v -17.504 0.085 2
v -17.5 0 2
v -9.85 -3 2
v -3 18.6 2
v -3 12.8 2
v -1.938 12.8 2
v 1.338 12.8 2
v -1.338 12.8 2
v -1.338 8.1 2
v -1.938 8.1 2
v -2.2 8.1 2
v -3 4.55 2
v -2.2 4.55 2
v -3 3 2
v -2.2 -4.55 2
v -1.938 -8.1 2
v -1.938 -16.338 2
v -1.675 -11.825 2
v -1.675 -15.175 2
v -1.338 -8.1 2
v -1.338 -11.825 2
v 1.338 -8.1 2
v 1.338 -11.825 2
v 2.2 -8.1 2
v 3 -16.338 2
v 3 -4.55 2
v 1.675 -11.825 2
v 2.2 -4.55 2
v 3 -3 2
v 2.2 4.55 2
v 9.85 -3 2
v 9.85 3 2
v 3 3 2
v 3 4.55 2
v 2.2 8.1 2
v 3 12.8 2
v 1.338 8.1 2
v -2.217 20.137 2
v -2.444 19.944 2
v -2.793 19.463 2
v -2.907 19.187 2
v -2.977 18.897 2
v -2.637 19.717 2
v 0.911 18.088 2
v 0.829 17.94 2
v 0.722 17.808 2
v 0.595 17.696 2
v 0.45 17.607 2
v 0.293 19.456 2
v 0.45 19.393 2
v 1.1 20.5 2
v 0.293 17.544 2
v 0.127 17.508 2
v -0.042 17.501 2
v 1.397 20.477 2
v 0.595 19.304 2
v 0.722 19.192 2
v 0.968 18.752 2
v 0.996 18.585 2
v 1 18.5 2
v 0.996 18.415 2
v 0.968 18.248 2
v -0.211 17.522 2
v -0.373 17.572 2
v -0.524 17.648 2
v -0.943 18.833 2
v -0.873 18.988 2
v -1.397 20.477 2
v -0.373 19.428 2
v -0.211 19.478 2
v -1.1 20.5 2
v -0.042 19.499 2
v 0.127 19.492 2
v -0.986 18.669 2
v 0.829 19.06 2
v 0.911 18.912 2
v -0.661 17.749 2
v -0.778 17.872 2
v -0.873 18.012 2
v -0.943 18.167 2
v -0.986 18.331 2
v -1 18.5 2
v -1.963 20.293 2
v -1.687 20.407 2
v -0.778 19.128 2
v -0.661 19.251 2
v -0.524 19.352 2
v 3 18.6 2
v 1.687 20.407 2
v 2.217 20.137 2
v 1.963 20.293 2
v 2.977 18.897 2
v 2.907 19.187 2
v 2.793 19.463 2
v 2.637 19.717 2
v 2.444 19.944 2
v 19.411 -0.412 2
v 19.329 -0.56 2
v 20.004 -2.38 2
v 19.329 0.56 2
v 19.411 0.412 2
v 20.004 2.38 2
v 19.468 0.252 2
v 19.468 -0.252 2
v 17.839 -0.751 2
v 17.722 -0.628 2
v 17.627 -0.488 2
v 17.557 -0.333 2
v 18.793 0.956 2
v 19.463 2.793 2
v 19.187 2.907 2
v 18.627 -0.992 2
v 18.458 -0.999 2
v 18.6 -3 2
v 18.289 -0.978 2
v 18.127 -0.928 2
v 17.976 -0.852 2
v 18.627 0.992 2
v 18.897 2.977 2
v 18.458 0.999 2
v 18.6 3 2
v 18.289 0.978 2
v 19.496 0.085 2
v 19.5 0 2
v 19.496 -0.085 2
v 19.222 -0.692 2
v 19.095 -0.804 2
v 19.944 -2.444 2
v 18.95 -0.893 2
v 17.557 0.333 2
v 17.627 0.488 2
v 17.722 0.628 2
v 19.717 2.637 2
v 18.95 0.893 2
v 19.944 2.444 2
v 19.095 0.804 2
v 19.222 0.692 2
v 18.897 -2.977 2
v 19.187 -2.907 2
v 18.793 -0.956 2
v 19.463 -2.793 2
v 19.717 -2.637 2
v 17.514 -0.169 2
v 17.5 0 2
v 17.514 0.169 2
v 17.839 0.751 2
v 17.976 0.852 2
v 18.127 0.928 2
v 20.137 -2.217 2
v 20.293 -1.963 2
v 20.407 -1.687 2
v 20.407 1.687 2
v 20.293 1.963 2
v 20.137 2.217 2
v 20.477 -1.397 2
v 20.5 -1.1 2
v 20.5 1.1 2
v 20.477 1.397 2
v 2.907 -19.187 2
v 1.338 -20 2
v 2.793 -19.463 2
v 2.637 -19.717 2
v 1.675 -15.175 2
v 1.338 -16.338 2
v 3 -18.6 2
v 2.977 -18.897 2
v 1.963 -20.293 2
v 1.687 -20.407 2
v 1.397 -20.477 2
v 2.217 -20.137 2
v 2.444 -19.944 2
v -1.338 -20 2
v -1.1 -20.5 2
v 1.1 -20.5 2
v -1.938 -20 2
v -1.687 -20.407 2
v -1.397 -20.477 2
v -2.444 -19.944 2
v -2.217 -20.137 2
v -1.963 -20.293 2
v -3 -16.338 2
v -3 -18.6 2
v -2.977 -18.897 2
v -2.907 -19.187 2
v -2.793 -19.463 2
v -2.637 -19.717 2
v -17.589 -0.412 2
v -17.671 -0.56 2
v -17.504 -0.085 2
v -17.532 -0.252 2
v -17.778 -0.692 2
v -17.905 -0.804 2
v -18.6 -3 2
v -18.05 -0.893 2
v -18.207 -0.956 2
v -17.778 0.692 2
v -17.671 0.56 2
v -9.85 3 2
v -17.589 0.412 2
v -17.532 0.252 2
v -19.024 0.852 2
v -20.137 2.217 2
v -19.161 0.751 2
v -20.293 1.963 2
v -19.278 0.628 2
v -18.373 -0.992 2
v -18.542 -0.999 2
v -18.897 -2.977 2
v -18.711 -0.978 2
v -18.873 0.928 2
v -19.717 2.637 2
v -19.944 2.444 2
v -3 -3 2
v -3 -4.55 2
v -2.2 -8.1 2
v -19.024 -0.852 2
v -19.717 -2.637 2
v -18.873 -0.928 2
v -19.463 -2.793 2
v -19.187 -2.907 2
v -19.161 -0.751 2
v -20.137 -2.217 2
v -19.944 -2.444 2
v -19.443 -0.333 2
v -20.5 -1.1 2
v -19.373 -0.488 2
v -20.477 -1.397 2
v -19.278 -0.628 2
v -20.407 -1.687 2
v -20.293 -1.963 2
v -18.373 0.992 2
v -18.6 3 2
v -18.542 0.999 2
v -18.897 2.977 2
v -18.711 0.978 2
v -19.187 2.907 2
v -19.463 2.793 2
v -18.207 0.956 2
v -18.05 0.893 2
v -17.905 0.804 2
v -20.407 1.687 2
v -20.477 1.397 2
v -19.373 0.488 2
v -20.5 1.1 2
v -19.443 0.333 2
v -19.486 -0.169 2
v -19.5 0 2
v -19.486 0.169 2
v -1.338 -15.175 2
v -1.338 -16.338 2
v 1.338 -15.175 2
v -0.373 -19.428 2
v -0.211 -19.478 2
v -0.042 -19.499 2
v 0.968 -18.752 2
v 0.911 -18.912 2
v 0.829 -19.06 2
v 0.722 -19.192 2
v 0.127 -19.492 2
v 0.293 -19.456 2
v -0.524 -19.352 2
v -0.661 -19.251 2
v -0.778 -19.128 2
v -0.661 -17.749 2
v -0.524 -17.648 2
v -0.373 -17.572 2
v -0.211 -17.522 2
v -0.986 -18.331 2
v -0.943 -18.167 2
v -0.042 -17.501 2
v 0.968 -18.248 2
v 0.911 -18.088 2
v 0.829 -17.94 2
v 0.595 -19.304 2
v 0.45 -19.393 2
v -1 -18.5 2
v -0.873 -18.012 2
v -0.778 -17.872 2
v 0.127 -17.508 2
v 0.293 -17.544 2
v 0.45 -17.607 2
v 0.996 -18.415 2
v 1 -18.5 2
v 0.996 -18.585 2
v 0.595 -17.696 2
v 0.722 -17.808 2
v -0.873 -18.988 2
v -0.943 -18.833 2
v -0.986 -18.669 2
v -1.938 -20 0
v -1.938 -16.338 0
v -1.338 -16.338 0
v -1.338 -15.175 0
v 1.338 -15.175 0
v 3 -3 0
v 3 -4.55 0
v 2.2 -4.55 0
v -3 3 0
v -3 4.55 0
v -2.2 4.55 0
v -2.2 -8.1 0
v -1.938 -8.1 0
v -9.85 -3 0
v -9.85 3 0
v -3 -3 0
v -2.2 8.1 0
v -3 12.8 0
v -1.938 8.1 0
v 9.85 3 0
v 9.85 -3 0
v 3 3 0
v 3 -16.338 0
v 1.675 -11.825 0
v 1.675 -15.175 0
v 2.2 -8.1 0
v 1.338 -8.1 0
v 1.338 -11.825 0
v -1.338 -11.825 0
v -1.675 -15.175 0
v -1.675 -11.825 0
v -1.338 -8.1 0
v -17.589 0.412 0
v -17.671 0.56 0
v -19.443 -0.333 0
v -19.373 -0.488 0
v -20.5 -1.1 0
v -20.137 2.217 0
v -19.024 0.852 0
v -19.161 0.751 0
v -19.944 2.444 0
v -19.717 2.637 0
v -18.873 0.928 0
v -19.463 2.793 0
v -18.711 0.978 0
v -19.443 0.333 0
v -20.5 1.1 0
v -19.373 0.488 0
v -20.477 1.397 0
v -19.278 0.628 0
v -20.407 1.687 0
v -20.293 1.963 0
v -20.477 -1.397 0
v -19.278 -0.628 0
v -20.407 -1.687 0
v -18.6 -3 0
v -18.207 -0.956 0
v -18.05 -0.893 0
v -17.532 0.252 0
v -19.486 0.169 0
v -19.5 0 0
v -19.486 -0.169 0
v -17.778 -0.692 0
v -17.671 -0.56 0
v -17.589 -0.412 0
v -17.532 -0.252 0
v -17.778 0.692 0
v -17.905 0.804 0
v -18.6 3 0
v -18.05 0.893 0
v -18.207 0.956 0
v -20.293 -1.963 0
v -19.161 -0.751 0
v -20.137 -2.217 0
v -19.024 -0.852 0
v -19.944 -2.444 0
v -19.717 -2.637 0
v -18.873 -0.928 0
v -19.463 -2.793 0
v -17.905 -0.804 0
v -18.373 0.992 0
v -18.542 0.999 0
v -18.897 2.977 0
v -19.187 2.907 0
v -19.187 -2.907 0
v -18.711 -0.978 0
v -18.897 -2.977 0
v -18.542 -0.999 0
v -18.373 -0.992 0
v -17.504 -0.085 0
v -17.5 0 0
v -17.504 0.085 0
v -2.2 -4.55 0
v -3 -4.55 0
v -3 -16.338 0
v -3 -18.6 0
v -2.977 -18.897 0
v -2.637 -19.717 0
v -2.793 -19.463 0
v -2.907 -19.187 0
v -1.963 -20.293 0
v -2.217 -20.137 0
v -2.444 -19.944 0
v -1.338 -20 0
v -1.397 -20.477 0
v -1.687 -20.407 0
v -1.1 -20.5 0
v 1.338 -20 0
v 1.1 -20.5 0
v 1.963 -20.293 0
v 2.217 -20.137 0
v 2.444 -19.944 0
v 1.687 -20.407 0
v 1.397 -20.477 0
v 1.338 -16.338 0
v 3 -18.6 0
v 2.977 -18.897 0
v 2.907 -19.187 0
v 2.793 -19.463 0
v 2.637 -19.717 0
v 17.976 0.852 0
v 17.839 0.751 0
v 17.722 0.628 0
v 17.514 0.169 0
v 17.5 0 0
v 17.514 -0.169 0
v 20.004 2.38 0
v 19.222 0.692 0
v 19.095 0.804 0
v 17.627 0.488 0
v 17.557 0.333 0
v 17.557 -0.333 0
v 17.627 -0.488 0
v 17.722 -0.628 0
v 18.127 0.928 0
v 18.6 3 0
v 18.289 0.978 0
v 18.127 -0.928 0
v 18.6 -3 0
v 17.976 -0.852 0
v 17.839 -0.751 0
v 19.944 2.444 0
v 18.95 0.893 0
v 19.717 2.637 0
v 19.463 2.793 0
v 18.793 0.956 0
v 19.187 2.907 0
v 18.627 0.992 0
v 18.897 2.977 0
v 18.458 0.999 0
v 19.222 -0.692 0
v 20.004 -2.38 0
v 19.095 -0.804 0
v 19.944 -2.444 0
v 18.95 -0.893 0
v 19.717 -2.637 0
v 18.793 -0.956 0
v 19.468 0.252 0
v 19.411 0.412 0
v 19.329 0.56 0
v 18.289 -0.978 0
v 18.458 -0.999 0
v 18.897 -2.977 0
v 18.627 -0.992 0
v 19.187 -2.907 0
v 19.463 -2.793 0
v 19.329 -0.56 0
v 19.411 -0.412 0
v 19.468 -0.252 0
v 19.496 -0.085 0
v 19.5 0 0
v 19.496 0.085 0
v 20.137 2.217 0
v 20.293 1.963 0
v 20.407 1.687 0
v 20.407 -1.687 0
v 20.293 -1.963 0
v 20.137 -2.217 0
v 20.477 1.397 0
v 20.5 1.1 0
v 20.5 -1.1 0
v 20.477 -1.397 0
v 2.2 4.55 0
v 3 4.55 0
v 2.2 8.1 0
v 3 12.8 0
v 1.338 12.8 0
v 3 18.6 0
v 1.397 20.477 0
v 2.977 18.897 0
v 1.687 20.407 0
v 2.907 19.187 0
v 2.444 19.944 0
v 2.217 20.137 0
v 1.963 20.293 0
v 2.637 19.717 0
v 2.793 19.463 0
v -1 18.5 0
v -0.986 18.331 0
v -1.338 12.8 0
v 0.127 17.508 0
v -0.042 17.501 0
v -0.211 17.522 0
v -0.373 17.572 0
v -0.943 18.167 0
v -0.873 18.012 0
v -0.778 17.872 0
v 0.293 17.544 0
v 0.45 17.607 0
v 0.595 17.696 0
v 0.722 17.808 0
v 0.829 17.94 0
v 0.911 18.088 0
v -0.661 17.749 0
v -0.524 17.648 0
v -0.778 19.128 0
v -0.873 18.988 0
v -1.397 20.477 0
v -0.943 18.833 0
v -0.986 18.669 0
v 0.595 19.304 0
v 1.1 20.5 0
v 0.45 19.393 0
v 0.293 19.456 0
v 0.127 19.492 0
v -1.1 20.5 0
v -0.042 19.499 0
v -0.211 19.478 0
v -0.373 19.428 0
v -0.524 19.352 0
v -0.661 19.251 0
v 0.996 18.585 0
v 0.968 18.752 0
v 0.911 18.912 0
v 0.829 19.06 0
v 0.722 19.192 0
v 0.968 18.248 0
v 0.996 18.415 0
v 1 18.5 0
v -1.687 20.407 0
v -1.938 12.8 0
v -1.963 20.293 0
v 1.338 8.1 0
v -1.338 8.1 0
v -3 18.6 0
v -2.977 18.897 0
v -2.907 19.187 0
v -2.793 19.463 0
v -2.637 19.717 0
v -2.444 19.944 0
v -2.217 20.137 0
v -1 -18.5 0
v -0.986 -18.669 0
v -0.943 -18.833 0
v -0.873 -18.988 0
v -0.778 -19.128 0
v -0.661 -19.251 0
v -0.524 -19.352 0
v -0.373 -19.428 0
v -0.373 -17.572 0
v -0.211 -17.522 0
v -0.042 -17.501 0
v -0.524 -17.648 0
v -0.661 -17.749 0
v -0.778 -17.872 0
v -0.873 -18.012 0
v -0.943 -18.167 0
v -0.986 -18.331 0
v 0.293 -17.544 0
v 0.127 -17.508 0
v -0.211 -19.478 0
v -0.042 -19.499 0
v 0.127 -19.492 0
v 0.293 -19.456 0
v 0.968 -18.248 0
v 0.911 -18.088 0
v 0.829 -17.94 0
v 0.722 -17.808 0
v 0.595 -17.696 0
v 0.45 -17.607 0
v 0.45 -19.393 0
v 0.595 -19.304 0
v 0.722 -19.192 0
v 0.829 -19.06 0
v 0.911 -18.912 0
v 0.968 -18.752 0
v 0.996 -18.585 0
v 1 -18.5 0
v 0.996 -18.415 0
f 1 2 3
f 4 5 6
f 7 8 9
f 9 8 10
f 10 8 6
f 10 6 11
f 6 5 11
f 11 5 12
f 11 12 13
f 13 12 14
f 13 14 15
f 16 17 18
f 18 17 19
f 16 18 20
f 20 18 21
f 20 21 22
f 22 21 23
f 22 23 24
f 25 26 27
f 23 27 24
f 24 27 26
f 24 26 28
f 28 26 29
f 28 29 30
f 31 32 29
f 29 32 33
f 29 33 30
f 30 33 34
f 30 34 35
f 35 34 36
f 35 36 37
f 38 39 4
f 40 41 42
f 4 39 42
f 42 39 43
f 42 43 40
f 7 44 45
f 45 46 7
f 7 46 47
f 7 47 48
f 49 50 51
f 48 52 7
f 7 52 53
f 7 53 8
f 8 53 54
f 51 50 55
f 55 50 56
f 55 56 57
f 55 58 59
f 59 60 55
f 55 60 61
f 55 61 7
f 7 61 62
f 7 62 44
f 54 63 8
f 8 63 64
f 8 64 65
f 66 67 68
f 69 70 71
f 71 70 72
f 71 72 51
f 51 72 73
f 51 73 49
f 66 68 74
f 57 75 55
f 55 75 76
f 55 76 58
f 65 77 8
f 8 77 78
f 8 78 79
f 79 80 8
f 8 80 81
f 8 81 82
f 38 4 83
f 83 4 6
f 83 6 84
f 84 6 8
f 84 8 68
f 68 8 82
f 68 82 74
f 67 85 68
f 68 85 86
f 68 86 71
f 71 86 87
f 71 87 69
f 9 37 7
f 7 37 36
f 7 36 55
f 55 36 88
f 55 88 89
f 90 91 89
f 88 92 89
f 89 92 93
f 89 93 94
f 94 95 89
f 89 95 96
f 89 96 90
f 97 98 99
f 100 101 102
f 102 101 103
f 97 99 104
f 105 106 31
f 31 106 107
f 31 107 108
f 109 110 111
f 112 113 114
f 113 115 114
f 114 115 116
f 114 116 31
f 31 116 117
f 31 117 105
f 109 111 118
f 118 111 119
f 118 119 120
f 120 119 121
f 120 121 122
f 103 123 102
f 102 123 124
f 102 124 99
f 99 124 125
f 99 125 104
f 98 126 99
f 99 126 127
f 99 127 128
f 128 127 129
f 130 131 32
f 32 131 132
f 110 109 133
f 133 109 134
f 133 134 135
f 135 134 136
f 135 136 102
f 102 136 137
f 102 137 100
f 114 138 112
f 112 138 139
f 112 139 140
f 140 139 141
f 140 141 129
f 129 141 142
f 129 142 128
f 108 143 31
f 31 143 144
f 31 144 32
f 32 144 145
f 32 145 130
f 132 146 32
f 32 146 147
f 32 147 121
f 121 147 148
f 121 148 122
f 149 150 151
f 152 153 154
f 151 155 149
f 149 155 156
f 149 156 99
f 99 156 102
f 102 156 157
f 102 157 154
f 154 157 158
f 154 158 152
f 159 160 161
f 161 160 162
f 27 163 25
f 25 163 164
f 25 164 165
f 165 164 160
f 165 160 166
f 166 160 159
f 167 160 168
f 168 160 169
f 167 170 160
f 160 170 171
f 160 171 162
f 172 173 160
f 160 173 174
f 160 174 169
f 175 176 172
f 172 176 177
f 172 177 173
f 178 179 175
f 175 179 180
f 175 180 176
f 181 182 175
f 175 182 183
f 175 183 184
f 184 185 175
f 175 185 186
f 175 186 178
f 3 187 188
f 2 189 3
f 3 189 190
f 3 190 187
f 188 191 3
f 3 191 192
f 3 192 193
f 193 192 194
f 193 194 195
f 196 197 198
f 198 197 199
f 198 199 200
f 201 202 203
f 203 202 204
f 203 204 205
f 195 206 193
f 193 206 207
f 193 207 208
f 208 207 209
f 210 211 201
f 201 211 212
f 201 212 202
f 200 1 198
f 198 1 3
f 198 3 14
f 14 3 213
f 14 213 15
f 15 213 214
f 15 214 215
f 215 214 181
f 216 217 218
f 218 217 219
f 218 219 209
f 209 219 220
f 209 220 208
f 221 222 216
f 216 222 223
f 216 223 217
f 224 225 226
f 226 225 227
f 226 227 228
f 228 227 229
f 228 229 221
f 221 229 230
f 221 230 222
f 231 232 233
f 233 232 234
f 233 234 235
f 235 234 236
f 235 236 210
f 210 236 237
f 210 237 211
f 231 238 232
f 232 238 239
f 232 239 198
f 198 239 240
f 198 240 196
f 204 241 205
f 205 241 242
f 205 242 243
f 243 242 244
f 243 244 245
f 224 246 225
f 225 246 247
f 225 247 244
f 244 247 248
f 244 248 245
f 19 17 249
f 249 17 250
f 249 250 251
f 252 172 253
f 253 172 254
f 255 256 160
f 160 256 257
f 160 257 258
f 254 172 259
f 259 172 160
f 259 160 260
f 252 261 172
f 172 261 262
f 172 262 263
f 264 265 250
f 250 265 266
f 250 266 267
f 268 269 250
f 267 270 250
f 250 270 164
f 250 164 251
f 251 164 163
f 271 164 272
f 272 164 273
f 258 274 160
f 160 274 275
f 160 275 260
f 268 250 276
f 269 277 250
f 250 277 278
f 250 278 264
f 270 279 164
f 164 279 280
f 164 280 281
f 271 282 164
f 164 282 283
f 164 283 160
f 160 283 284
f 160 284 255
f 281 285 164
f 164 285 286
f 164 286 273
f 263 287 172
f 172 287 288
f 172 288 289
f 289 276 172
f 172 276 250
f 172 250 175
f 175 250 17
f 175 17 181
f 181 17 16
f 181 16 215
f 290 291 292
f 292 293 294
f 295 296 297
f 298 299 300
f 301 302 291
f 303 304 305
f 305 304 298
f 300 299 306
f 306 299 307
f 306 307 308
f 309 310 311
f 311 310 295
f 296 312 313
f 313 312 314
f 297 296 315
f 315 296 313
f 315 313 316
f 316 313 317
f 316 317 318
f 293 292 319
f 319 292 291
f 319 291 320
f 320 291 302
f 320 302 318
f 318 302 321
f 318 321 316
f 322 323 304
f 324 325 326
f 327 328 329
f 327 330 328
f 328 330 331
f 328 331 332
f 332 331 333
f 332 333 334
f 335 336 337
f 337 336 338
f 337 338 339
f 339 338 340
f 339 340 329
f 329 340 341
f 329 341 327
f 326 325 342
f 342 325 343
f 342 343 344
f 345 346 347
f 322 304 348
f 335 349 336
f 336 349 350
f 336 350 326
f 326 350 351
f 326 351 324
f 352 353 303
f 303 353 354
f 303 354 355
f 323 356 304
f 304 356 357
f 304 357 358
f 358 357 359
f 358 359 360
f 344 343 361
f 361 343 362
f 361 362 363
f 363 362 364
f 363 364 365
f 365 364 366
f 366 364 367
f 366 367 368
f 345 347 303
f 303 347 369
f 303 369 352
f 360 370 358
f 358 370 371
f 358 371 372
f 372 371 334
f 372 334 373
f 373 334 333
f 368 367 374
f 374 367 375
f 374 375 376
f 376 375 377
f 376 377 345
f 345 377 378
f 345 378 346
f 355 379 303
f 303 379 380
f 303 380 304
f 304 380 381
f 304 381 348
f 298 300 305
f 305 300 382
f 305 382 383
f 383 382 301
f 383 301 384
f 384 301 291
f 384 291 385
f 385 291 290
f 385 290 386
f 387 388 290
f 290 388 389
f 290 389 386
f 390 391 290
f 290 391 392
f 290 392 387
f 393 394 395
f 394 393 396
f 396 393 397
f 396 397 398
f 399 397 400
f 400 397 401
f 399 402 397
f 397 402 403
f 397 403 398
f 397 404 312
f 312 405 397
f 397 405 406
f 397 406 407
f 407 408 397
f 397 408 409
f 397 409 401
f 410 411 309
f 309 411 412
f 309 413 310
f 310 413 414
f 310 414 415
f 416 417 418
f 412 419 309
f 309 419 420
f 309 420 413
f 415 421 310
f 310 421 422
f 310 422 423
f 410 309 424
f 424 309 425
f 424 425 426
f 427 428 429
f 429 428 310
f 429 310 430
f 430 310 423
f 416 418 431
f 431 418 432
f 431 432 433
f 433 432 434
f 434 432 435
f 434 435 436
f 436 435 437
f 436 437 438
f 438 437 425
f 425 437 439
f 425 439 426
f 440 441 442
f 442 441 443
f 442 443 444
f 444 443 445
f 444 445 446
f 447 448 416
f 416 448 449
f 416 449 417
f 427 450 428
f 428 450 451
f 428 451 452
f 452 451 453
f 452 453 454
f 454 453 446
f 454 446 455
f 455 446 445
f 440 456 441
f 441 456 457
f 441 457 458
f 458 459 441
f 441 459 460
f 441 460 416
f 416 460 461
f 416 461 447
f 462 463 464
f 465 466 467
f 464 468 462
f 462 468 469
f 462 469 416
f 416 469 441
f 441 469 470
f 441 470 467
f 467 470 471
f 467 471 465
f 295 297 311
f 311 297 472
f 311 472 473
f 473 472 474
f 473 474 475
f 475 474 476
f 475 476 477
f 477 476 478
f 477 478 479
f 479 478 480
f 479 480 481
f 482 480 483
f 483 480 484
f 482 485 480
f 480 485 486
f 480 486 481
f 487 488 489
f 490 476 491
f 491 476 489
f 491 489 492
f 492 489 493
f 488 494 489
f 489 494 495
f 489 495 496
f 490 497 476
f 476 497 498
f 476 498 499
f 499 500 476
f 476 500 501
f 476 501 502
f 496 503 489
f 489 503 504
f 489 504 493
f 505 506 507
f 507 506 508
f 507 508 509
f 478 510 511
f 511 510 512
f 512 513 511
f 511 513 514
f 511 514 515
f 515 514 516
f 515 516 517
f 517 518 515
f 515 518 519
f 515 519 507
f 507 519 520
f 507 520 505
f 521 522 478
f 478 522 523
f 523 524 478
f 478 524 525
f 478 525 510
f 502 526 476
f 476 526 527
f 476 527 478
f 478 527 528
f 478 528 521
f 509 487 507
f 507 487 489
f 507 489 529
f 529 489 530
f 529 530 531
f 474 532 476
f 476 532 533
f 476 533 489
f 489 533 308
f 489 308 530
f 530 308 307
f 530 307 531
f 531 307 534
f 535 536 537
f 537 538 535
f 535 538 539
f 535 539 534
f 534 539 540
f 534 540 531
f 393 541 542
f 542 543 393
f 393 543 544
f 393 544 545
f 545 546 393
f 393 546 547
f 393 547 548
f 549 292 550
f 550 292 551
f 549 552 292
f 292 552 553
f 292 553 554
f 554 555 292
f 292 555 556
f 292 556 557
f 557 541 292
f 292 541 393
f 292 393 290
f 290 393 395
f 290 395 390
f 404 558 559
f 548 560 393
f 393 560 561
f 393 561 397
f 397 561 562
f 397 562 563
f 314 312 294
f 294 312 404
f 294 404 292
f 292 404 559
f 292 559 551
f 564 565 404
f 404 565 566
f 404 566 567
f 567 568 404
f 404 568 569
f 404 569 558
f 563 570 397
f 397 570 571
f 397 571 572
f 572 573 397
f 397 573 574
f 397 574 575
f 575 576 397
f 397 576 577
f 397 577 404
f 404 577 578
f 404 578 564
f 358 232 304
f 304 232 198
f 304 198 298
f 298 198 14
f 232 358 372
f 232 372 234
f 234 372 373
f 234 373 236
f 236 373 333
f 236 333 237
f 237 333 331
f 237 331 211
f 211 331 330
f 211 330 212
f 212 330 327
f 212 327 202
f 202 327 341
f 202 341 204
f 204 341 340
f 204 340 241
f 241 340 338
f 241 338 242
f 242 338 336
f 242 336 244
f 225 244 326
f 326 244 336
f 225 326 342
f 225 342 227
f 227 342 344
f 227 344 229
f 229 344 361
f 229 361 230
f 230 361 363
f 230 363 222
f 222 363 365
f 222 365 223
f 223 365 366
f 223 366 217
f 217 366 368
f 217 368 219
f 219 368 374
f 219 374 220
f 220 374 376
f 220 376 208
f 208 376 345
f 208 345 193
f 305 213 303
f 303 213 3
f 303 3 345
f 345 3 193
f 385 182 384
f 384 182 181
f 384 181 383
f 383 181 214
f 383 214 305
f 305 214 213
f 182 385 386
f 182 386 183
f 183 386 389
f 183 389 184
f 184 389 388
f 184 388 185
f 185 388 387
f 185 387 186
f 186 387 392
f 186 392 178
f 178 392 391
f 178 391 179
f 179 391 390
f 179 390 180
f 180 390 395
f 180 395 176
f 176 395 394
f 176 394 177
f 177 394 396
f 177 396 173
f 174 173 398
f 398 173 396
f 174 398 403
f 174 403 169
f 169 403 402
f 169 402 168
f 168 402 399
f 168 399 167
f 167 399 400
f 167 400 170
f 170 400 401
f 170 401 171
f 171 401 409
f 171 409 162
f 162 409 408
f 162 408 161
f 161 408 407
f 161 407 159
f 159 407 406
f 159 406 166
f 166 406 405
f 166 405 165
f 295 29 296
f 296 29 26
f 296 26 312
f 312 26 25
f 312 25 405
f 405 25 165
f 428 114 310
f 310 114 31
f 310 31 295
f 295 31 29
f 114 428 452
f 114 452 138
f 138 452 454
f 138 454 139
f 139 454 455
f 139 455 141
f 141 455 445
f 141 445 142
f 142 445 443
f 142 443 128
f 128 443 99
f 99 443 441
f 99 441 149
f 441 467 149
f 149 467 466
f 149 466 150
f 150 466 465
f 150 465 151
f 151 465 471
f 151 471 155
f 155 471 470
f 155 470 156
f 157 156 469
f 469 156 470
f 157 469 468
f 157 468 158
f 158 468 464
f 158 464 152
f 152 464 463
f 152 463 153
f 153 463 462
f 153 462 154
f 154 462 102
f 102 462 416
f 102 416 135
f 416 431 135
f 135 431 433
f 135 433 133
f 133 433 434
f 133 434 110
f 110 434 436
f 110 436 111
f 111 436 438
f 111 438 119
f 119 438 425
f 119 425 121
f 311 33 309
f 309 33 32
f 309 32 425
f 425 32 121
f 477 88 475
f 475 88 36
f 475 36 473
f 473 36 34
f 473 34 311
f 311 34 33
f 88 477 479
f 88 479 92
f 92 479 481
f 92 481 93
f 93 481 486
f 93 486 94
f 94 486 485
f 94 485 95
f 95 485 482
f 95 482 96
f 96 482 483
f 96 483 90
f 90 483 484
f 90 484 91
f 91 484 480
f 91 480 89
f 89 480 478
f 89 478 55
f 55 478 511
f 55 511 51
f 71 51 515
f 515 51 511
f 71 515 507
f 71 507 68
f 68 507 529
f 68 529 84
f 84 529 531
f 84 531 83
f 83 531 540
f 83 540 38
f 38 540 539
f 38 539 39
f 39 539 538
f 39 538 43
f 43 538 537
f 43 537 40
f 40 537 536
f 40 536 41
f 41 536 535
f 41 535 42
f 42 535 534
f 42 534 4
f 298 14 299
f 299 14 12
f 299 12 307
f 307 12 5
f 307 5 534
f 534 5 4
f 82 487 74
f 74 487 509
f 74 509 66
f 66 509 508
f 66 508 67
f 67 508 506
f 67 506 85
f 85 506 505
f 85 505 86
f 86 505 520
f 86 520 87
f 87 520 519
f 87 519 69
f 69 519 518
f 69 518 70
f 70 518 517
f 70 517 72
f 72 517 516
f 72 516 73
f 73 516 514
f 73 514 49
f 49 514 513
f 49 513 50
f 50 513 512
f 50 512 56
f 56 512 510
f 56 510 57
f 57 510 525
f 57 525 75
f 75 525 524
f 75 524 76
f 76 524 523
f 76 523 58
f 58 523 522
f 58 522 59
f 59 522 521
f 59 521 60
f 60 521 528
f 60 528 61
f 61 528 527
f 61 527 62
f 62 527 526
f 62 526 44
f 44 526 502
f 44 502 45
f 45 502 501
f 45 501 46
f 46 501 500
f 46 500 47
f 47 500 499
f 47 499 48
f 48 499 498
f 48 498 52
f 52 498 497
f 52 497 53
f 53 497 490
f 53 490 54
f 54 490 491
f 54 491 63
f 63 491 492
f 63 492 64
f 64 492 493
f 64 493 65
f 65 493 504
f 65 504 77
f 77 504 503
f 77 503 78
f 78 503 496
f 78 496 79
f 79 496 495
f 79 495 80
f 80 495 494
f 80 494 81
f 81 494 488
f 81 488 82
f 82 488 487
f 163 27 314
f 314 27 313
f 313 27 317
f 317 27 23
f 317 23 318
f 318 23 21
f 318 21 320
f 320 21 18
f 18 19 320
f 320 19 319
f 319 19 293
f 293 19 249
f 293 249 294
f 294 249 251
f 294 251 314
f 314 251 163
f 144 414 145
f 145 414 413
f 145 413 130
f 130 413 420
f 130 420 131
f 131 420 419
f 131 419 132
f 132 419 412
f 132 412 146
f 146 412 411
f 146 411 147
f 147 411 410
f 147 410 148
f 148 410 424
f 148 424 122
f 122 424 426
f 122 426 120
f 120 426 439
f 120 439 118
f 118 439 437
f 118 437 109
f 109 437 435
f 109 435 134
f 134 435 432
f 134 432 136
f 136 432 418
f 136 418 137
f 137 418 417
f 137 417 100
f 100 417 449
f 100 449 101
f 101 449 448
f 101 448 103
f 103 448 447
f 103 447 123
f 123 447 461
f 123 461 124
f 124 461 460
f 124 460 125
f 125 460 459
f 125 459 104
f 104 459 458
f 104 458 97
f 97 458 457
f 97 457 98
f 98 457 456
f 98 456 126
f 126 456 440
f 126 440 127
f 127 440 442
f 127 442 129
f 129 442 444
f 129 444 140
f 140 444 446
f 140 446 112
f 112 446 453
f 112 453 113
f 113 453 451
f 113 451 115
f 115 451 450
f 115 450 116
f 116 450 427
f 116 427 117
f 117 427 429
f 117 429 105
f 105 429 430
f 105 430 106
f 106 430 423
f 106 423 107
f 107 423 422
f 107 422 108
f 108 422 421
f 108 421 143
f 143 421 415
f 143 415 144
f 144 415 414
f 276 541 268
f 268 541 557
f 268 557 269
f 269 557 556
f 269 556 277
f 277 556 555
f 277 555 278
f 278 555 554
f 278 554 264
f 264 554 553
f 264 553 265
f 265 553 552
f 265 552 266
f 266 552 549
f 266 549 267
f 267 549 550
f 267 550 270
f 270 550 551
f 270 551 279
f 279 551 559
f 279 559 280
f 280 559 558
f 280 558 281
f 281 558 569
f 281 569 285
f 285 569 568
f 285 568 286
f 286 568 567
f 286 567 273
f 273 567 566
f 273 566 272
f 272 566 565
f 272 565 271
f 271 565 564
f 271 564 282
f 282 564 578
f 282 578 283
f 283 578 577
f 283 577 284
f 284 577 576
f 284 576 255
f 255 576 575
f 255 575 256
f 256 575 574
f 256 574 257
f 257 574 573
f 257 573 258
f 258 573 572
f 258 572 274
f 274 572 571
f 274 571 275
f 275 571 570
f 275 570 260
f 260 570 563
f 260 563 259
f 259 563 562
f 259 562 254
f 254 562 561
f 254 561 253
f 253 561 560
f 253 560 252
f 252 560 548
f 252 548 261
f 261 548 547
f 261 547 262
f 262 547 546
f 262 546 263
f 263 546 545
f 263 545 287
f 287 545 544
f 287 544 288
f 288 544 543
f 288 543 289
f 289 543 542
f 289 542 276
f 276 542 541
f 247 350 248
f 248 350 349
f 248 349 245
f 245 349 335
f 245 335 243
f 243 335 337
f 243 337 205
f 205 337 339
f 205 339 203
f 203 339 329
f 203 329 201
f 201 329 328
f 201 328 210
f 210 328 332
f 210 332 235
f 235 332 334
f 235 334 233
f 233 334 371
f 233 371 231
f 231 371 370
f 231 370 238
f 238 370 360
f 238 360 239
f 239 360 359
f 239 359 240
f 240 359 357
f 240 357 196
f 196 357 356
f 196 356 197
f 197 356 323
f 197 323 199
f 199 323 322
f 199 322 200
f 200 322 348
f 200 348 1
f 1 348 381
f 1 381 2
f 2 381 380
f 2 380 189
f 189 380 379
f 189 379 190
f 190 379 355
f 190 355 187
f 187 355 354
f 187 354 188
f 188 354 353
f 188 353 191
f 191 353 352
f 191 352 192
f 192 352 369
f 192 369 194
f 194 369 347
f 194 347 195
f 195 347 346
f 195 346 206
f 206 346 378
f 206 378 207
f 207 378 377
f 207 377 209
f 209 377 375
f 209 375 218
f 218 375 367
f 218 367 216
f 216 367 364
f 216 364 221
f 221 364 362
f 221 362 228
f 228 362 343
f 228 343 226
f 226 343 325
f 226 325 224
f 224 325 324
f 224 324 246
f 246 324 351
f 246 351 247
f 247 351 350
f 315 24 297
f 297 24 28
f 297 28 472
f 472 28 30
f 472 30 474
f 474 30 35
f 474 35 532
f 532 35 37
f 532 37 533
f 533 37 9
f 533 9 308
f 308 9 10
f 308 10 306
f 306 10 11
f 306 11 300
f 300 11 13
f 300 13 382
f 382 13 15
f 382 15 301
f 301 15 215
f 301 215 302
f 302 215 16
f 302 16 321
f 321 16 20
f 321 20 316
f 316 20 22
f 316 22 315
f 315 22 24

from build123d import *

# Parameters (mm, degrees)
CROQUIS1_R              = 1
CROQUIS1_W              = 3.35
CROQUIS1_H              = 3.35
CROQUIS1_W_2            = 4.4
CROQUIS1_H_2            = 16.2
SALIENTE_EXTRUIR1_DEPTH = 2


with BuildPart() as part:
    # Croquis1 → Saliente-Extruir1 (new body)
    with BuildSketch(Plane.XY):
        with BuildLine():
            Line((-3, 3), (-3, 18.6))
            ThreePointArc((-3, 18.6), (-2.443502884, 19.943502884), (-1.1, 20.5))
            Line((-1.1, 20.5), (1.1, 20.5))
            ThreePointArc((1.1, 20.5), (2.443502884, 19.943502884), (3, 18.6))
            Line((3, 18.6), (3, 3))
            Line((3, 3), (18.6, 3))
            ThreePointArc((18.6, 3), (19.943502884, 2.443502884), (20.5, 1.1))
            Line((20.5, 1.1), (20.5, -1.1))
            ThreePointArc((20.5, -1.1), (19.943502884, -2.443502884), (18.6, -3))
            Line((18.6, -3), (3, -3))
            Line((3, -3), (3, -18.6))
            ThreePointArc((3, -18.6), (2.443502884, -19.943502884), (1.1, -20.5))
            Line((1.1, -20.5), (-1.1, -20.5))
            ThreePointArc((-1.1, -20.5), (-2.443502884, -19.943502884), (-3, -18.6))
            Line((-3, -18.6), (-3, -3))
            Line((-3, -3), (-18.6, -3))
            ThreePointArc((-18.6, -3), (-19.943502884, -2.443502884), (-20.5, -1.1))
            Line((-20.5, -1.1), (-20.5, 1.1))
            ThreePointArc((-20.5, 1.1), (-19.943502884, 2.443502884), (-18.6, 3))
            Line((-18.6, 3), (-3, 3))
        make_face()
        with Locations((0, 18.5)):
            Circle(CROQUIS1_R, mode=Mode.SUBTRACT)
        with Locations((18.5, 0)):
            Circle(CROQUIS1_R, mode=Mode.SUBTRACT)
        with Locations((0, -18.5)):
            Circle(CROQUIS1_R, mode=Mode.SUBTRACT)
        with Locations((-18.5, 0)):
            Circle(CROQUIS1_R, mode=Mode.SUBTRACT)
        with Locations((0, -13.5)):
            Rectangle(CROQUIS1_W, CROQUIS1_H, mode=Mode.SUBTRACT)
        Rectangle(CROQUIS1_W_2, CROQUIS1_H_2, mode=Mode.SUBTRACT)
    extrude(amount=SALIENTE_EXTRUIR1_DEPTH)


solid = part.part
